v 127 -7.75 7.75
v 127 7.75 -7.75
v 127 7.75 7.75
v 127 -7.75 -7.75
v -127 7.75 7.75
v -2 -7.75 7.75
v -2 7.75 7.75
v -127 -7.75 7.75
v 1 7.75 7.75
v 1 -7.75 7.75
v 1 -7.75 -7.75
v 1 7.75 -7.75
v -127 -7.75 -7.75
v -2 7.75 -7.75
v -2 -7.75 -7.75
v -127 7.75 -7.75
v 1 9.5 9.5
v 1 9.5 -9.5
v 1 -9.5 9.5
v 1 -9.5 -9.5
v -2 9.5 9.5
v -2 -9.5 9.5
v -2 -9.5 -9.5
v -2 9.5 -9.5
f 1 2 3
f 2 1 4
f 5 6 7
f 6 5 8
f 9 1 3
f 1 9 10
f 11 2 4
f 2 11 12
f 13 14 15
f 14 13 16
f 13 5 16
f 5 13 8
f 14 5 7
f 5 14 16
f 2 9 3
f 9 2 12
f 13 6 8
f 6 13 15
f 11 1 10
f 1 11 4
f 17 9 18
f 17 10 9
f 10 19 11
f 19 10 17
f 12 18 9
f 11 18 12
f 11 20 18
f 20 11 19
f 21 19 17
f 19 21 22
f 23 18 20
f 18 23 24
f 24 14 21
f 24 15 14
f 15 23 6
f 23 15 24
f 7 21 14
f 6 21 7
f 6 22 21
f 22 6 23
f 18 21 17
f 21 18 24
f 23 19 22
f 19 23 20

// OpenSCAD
translate([-127,-7.75,-7.75]) {
  cube([254, 15.5, 15.5]);
  translate([125,-1.75,-1.75]) {
    cube([3, 19, 19]);
  }
}
